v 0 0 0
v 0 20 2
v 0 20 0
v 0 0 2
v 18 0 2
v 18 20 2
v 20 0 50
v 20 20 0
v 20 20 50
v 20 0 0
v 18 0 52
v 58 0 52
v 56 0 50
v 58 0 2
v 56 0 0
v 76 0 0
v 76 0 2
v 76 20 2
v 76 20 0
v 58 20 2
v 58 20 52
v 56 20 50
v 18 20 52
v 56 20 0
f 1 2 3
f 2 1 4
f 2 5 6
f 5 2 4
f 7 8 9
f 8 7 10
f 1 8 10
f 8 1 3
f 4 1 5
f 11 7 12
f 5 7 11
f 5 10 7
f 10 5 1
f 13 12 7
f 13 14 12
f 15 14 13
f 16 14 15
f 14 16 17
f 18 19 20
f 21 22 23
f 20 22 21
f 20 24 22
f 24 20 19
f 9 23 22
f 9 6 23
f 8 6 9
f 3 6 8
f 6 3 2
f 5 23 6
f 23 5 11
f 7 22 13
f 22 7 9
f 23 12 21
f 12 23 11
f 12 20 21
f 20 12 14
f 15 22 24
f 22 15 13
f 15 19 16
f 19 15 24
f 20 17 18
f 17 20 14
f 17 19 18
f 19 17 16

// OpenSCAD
cube([20,20, 2]);
translate([18,0,0]){
  cube([2,20,50]);
}
translate([18,0,50]){
 cube([40,20,2]);   
}
translate([56,0,0]){
  cube([2,20,50]);
}

translate([56,0,0]){
 cube([20,20,2]);   
}
